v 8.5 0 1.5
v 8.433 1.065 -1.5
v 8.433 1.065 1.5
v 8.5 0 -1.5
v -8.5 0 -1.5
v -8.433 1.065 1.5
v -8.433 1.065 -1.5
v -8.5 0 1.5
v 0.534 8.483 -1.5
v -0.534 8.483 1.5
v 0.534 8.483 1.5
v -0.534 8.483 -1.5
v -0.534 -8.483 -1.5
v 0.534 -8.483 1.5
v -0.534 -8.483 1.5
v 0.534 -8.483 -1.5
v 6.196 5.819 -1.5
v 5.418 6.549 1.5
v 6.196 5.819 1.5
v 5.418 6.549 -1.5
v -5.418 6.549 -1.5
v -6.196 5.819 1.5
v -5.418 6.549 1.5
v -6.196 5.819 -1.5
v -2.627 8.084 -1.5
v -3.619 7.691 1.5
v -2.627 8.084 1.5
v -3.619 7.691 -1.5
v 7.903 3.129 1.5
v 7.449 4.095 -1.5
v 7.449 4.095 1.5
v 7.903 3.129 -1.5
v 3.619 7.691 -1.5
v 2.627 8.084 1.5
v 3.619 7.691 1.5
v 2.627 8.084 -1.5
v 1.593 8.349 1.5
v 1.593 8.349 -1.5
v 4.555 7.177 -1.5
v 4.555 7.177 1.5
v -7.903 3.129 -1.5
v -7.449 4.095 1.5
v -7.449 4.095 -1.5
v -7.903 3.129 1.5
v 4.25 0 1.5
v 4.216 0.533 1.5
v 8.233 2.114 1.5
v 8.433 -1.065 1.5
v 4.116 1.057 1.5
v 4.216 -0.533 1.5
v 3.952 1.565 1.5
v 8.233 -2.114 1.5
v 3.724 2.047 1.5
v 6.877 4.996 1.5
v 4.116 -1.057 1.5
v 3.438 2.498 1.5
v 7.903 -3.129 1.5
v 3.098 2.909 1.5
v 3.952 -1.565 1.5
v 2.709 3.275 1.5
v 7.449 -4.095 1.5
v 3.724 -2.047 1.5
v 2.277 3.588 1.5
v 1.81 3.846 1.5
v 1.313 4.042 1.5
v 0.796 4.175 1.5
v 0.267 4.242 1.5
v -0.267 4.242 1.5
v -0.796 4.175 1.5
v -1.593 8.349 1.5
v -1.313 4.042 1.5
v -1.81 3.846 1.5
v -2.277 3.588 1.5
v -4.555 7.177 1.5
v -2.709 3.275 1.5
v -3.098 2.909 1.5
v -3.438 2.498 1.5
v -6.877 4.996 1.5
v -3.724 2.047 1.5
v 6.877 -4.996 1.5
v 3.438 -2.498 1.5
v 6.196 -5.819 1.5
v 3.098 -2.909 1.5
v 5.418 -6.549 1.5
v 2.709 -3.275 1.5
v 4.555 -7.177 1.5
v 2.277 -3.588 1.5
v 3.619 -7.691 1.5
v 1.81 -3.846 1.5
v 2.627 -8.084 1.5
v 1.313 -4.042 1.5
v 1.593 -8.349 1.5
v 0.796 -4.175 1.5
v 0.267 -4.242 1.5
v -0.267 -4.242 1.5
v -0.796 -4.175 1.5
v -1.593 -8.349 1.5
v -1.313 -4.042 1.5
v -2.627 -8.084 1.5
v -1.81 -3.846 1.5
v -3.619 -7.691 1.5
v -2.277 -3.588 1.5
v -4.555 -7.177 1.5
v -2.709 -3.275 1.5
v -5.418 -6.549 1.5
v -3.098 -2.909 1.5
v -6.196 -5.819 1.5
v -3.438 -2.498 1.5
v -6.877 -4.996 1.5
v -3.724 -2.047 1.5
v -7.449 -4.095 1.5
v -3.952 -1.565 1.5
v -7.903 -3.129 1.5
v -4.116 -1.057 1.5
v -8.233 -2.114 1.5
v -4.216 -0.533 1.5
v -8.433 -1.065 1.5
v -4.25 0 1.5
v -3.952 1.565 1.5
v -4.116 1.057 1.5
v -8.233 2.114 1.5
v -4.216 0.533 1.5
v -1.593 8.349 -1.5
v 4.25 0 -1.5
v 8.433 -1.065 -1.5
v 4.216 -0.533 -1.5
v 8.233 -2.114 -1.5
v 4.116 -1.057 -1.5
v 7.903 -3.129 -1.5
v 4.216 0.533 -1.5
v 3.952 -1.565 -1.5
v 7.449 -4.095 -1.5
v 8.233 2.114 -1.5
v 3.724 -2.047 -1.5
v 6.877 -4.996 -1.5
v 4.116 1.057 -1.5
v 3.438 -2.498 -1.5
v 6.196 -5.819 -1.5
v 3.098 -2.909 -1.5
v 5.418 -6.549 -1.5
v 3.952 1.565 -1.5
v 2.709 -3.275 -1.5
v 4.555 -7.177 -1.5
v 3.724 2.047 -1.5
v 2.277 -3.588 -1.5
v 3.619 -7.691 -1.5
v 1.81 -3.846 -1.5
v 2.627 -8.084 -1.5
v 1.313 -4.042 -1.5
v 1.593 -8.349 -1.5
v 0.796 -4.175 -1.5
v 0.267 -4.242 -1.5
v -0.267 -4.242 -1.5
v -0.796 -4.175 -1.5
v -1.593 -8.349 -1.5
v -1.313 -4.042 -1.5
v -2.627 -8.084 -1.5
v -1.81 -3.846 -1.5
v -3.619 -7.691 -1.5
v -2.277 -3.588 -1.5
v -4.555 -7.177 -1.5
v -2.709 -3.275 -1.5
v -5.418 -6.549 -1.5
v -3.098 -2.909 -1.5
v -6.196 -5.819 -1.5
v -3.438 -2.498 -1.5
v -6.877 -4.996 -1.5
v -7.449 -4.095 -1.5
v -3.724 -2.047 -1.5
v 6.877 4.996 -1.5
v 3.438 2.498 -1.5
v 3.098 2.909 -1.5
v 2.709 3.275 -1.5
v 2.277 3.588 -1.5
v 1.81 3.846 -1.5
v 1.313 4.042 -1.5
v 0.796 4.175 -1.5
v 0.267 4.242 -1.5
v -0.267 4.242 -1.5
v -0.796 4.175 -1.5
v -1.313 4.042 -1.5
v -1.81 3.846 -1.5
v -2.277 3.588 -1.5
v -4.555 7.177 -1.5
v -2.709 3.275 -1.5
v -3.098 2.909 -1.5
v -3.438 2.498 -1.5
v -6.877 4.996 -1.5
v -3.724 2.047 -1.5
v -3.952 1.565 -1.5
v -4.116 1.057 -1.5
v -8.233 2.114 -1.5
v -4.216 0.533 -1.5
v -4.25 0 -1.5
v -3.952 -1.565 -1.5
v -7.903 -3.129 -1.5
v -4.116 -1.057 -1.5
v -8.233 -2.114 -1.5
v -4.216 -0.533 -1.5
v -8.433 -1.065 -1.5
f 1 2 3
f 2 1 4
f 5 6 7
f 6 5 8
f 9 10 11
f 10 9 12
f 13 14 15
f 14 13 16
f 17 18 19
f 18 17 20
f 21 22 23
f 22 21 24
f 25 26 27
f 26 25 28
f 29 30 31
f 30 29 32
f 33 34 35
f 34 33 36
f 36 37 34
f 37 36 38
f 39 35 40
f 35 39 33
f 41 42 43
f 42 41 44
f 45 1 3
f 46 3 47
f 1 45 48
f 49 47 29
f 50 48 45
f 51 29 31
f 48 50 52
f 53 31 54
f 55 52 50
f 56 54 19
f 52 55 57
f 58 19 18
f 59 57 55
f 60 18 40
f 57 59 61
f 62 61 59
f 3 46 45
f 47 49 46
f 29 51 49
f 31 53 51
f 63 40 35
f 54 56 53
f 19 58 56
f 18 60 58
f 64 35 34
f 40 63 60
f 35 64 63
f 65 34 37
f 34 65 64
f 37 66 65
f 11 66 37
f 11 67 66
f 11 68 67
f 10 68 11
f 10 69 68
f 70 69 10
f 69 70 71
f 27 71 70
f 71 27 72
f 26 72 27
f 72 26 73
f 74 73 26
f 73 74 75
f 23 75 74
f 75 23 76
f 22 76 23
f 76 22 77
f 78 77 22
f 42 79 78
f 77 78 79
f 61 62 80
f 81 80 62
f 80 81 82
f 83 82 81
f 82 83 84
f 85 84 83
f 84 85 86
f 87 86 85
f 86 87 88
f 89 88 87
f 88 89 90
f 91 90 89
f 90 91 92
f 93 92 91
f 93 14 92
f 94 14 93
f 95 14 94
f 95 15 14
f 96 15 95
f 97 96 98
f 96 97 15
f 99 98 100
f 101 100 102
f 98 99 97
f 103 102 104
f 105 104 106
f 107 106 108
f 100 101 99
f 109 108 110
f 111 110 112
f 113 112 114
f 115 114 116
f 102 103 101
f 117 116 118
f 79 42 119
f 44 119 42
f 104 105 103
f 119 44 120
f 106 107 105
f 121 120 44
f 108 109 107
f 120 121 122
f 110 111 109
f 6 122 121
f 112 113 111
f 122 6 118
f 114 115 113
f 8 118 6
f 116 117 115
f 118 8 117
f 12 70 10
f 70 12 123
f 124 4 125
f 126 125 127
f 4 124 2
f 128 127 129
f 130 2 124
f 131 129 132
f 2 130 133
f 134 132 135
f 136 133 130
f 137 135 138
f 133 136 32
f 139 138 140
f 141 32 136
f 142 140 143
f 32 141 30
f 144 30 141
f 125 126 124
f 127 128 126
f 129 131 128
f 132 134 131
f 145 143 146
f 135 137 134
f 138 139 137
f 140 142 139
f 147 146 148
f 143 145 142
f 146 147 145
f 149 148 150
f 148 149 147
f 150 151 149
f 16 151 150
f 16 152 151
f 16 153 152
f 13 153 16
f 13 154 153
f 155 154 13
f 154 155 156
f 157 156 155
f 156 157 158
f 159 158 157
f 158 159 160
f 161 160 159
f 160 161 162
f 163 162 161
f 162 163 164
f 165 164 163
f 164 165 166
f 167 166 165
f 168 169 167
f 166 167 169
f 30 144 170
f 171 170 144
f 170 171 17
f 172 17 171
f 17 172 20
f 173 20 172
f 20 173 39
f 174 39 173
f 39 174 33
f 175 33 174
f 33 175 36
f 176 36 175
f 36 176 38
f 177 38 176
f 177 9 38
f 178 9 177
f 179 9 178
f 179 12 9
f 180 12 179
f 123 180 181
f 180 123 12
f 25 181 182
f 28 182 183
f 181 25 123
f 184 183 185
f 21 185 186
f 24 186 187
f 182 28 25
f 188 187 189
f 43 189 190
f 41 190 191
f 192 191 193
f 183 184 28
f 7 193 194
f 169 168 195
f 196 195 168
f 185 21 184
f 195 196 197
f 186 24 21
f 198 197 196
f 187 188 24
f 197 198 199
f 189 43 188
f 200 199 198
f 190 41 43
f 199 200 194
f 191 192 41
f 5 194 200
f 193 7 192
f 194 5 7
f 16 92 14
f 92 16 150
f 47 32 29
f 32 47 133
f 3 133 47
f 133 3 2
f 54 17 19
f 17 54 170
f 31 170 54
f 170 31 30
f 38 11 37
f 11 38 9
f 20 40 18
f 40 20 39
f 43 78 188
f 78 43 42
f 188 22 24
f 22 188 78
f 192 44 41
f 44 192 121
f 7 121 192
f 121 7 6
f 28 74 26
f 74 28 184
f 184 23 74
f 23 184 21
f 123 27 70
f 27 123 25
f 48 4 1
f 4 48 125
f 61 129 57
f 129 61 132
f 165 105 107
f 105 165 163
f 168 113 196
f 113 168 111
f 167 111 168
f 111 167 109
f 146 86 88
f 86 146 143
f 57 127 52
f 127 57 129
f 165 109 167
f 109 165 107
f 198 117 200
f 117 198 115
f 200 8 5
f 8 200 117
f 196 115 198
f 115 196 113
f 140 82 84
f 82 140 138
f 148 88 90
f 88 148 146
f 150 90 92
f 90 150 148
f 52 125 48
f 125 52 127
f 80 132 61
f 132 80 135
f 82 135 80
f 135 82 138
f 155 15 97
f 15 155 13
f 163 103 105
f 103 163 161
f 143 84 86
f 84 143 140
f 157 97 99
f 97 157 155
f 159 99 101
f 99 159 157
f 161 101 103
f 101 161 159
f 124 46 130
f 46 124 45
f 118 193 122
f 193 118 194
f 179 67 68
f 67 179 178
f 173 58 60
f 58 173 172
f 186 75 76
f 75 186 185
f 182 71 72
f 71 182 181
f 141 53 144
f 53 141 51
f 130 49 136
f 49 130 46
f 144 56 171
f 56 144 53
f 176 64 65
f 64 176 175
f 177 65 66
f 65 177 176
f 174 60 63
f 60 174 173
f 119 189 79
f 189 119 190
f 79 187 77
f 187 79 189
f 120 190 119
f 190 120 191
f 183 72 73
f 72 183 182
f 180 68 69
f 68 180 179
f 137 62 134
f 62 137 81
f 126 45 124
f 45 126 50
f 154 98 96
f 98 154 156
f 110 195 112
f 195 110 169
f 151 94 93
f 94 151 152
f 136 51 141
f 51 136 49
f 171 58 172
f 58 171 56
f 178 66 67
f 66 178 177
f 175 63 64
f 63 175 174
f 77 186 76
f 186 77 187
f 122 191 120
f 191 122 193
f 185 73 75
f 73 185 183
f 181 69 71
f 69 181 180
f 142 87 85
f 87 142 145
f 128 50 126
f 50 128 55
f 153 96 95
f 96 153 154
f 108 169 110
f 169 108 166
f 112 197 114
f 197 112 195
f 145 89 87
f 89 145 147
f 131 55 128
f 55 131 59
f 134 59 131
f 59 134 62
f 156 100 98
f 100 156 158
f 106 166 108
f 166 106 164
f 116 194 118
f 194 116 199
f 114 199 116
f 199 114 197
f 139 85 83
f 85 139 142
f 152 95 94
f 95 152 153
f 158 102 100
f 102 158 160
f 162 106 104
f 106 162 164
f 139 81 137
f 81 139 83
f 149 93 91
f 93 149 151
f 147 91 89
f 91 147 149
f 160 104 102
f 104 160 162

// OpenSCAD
$fn = 50;


difference() {
	union() {
		translate(v = [0, 0, -1.5000000000]) {
			cylinder(h = 3, r = 8.5000000000);
		}
	}
	union() {
		translate(v = [0, 0, -100.0000000000]) {
			cylinder(h = 200, r = 4.2500000000);
		}
	}
}
